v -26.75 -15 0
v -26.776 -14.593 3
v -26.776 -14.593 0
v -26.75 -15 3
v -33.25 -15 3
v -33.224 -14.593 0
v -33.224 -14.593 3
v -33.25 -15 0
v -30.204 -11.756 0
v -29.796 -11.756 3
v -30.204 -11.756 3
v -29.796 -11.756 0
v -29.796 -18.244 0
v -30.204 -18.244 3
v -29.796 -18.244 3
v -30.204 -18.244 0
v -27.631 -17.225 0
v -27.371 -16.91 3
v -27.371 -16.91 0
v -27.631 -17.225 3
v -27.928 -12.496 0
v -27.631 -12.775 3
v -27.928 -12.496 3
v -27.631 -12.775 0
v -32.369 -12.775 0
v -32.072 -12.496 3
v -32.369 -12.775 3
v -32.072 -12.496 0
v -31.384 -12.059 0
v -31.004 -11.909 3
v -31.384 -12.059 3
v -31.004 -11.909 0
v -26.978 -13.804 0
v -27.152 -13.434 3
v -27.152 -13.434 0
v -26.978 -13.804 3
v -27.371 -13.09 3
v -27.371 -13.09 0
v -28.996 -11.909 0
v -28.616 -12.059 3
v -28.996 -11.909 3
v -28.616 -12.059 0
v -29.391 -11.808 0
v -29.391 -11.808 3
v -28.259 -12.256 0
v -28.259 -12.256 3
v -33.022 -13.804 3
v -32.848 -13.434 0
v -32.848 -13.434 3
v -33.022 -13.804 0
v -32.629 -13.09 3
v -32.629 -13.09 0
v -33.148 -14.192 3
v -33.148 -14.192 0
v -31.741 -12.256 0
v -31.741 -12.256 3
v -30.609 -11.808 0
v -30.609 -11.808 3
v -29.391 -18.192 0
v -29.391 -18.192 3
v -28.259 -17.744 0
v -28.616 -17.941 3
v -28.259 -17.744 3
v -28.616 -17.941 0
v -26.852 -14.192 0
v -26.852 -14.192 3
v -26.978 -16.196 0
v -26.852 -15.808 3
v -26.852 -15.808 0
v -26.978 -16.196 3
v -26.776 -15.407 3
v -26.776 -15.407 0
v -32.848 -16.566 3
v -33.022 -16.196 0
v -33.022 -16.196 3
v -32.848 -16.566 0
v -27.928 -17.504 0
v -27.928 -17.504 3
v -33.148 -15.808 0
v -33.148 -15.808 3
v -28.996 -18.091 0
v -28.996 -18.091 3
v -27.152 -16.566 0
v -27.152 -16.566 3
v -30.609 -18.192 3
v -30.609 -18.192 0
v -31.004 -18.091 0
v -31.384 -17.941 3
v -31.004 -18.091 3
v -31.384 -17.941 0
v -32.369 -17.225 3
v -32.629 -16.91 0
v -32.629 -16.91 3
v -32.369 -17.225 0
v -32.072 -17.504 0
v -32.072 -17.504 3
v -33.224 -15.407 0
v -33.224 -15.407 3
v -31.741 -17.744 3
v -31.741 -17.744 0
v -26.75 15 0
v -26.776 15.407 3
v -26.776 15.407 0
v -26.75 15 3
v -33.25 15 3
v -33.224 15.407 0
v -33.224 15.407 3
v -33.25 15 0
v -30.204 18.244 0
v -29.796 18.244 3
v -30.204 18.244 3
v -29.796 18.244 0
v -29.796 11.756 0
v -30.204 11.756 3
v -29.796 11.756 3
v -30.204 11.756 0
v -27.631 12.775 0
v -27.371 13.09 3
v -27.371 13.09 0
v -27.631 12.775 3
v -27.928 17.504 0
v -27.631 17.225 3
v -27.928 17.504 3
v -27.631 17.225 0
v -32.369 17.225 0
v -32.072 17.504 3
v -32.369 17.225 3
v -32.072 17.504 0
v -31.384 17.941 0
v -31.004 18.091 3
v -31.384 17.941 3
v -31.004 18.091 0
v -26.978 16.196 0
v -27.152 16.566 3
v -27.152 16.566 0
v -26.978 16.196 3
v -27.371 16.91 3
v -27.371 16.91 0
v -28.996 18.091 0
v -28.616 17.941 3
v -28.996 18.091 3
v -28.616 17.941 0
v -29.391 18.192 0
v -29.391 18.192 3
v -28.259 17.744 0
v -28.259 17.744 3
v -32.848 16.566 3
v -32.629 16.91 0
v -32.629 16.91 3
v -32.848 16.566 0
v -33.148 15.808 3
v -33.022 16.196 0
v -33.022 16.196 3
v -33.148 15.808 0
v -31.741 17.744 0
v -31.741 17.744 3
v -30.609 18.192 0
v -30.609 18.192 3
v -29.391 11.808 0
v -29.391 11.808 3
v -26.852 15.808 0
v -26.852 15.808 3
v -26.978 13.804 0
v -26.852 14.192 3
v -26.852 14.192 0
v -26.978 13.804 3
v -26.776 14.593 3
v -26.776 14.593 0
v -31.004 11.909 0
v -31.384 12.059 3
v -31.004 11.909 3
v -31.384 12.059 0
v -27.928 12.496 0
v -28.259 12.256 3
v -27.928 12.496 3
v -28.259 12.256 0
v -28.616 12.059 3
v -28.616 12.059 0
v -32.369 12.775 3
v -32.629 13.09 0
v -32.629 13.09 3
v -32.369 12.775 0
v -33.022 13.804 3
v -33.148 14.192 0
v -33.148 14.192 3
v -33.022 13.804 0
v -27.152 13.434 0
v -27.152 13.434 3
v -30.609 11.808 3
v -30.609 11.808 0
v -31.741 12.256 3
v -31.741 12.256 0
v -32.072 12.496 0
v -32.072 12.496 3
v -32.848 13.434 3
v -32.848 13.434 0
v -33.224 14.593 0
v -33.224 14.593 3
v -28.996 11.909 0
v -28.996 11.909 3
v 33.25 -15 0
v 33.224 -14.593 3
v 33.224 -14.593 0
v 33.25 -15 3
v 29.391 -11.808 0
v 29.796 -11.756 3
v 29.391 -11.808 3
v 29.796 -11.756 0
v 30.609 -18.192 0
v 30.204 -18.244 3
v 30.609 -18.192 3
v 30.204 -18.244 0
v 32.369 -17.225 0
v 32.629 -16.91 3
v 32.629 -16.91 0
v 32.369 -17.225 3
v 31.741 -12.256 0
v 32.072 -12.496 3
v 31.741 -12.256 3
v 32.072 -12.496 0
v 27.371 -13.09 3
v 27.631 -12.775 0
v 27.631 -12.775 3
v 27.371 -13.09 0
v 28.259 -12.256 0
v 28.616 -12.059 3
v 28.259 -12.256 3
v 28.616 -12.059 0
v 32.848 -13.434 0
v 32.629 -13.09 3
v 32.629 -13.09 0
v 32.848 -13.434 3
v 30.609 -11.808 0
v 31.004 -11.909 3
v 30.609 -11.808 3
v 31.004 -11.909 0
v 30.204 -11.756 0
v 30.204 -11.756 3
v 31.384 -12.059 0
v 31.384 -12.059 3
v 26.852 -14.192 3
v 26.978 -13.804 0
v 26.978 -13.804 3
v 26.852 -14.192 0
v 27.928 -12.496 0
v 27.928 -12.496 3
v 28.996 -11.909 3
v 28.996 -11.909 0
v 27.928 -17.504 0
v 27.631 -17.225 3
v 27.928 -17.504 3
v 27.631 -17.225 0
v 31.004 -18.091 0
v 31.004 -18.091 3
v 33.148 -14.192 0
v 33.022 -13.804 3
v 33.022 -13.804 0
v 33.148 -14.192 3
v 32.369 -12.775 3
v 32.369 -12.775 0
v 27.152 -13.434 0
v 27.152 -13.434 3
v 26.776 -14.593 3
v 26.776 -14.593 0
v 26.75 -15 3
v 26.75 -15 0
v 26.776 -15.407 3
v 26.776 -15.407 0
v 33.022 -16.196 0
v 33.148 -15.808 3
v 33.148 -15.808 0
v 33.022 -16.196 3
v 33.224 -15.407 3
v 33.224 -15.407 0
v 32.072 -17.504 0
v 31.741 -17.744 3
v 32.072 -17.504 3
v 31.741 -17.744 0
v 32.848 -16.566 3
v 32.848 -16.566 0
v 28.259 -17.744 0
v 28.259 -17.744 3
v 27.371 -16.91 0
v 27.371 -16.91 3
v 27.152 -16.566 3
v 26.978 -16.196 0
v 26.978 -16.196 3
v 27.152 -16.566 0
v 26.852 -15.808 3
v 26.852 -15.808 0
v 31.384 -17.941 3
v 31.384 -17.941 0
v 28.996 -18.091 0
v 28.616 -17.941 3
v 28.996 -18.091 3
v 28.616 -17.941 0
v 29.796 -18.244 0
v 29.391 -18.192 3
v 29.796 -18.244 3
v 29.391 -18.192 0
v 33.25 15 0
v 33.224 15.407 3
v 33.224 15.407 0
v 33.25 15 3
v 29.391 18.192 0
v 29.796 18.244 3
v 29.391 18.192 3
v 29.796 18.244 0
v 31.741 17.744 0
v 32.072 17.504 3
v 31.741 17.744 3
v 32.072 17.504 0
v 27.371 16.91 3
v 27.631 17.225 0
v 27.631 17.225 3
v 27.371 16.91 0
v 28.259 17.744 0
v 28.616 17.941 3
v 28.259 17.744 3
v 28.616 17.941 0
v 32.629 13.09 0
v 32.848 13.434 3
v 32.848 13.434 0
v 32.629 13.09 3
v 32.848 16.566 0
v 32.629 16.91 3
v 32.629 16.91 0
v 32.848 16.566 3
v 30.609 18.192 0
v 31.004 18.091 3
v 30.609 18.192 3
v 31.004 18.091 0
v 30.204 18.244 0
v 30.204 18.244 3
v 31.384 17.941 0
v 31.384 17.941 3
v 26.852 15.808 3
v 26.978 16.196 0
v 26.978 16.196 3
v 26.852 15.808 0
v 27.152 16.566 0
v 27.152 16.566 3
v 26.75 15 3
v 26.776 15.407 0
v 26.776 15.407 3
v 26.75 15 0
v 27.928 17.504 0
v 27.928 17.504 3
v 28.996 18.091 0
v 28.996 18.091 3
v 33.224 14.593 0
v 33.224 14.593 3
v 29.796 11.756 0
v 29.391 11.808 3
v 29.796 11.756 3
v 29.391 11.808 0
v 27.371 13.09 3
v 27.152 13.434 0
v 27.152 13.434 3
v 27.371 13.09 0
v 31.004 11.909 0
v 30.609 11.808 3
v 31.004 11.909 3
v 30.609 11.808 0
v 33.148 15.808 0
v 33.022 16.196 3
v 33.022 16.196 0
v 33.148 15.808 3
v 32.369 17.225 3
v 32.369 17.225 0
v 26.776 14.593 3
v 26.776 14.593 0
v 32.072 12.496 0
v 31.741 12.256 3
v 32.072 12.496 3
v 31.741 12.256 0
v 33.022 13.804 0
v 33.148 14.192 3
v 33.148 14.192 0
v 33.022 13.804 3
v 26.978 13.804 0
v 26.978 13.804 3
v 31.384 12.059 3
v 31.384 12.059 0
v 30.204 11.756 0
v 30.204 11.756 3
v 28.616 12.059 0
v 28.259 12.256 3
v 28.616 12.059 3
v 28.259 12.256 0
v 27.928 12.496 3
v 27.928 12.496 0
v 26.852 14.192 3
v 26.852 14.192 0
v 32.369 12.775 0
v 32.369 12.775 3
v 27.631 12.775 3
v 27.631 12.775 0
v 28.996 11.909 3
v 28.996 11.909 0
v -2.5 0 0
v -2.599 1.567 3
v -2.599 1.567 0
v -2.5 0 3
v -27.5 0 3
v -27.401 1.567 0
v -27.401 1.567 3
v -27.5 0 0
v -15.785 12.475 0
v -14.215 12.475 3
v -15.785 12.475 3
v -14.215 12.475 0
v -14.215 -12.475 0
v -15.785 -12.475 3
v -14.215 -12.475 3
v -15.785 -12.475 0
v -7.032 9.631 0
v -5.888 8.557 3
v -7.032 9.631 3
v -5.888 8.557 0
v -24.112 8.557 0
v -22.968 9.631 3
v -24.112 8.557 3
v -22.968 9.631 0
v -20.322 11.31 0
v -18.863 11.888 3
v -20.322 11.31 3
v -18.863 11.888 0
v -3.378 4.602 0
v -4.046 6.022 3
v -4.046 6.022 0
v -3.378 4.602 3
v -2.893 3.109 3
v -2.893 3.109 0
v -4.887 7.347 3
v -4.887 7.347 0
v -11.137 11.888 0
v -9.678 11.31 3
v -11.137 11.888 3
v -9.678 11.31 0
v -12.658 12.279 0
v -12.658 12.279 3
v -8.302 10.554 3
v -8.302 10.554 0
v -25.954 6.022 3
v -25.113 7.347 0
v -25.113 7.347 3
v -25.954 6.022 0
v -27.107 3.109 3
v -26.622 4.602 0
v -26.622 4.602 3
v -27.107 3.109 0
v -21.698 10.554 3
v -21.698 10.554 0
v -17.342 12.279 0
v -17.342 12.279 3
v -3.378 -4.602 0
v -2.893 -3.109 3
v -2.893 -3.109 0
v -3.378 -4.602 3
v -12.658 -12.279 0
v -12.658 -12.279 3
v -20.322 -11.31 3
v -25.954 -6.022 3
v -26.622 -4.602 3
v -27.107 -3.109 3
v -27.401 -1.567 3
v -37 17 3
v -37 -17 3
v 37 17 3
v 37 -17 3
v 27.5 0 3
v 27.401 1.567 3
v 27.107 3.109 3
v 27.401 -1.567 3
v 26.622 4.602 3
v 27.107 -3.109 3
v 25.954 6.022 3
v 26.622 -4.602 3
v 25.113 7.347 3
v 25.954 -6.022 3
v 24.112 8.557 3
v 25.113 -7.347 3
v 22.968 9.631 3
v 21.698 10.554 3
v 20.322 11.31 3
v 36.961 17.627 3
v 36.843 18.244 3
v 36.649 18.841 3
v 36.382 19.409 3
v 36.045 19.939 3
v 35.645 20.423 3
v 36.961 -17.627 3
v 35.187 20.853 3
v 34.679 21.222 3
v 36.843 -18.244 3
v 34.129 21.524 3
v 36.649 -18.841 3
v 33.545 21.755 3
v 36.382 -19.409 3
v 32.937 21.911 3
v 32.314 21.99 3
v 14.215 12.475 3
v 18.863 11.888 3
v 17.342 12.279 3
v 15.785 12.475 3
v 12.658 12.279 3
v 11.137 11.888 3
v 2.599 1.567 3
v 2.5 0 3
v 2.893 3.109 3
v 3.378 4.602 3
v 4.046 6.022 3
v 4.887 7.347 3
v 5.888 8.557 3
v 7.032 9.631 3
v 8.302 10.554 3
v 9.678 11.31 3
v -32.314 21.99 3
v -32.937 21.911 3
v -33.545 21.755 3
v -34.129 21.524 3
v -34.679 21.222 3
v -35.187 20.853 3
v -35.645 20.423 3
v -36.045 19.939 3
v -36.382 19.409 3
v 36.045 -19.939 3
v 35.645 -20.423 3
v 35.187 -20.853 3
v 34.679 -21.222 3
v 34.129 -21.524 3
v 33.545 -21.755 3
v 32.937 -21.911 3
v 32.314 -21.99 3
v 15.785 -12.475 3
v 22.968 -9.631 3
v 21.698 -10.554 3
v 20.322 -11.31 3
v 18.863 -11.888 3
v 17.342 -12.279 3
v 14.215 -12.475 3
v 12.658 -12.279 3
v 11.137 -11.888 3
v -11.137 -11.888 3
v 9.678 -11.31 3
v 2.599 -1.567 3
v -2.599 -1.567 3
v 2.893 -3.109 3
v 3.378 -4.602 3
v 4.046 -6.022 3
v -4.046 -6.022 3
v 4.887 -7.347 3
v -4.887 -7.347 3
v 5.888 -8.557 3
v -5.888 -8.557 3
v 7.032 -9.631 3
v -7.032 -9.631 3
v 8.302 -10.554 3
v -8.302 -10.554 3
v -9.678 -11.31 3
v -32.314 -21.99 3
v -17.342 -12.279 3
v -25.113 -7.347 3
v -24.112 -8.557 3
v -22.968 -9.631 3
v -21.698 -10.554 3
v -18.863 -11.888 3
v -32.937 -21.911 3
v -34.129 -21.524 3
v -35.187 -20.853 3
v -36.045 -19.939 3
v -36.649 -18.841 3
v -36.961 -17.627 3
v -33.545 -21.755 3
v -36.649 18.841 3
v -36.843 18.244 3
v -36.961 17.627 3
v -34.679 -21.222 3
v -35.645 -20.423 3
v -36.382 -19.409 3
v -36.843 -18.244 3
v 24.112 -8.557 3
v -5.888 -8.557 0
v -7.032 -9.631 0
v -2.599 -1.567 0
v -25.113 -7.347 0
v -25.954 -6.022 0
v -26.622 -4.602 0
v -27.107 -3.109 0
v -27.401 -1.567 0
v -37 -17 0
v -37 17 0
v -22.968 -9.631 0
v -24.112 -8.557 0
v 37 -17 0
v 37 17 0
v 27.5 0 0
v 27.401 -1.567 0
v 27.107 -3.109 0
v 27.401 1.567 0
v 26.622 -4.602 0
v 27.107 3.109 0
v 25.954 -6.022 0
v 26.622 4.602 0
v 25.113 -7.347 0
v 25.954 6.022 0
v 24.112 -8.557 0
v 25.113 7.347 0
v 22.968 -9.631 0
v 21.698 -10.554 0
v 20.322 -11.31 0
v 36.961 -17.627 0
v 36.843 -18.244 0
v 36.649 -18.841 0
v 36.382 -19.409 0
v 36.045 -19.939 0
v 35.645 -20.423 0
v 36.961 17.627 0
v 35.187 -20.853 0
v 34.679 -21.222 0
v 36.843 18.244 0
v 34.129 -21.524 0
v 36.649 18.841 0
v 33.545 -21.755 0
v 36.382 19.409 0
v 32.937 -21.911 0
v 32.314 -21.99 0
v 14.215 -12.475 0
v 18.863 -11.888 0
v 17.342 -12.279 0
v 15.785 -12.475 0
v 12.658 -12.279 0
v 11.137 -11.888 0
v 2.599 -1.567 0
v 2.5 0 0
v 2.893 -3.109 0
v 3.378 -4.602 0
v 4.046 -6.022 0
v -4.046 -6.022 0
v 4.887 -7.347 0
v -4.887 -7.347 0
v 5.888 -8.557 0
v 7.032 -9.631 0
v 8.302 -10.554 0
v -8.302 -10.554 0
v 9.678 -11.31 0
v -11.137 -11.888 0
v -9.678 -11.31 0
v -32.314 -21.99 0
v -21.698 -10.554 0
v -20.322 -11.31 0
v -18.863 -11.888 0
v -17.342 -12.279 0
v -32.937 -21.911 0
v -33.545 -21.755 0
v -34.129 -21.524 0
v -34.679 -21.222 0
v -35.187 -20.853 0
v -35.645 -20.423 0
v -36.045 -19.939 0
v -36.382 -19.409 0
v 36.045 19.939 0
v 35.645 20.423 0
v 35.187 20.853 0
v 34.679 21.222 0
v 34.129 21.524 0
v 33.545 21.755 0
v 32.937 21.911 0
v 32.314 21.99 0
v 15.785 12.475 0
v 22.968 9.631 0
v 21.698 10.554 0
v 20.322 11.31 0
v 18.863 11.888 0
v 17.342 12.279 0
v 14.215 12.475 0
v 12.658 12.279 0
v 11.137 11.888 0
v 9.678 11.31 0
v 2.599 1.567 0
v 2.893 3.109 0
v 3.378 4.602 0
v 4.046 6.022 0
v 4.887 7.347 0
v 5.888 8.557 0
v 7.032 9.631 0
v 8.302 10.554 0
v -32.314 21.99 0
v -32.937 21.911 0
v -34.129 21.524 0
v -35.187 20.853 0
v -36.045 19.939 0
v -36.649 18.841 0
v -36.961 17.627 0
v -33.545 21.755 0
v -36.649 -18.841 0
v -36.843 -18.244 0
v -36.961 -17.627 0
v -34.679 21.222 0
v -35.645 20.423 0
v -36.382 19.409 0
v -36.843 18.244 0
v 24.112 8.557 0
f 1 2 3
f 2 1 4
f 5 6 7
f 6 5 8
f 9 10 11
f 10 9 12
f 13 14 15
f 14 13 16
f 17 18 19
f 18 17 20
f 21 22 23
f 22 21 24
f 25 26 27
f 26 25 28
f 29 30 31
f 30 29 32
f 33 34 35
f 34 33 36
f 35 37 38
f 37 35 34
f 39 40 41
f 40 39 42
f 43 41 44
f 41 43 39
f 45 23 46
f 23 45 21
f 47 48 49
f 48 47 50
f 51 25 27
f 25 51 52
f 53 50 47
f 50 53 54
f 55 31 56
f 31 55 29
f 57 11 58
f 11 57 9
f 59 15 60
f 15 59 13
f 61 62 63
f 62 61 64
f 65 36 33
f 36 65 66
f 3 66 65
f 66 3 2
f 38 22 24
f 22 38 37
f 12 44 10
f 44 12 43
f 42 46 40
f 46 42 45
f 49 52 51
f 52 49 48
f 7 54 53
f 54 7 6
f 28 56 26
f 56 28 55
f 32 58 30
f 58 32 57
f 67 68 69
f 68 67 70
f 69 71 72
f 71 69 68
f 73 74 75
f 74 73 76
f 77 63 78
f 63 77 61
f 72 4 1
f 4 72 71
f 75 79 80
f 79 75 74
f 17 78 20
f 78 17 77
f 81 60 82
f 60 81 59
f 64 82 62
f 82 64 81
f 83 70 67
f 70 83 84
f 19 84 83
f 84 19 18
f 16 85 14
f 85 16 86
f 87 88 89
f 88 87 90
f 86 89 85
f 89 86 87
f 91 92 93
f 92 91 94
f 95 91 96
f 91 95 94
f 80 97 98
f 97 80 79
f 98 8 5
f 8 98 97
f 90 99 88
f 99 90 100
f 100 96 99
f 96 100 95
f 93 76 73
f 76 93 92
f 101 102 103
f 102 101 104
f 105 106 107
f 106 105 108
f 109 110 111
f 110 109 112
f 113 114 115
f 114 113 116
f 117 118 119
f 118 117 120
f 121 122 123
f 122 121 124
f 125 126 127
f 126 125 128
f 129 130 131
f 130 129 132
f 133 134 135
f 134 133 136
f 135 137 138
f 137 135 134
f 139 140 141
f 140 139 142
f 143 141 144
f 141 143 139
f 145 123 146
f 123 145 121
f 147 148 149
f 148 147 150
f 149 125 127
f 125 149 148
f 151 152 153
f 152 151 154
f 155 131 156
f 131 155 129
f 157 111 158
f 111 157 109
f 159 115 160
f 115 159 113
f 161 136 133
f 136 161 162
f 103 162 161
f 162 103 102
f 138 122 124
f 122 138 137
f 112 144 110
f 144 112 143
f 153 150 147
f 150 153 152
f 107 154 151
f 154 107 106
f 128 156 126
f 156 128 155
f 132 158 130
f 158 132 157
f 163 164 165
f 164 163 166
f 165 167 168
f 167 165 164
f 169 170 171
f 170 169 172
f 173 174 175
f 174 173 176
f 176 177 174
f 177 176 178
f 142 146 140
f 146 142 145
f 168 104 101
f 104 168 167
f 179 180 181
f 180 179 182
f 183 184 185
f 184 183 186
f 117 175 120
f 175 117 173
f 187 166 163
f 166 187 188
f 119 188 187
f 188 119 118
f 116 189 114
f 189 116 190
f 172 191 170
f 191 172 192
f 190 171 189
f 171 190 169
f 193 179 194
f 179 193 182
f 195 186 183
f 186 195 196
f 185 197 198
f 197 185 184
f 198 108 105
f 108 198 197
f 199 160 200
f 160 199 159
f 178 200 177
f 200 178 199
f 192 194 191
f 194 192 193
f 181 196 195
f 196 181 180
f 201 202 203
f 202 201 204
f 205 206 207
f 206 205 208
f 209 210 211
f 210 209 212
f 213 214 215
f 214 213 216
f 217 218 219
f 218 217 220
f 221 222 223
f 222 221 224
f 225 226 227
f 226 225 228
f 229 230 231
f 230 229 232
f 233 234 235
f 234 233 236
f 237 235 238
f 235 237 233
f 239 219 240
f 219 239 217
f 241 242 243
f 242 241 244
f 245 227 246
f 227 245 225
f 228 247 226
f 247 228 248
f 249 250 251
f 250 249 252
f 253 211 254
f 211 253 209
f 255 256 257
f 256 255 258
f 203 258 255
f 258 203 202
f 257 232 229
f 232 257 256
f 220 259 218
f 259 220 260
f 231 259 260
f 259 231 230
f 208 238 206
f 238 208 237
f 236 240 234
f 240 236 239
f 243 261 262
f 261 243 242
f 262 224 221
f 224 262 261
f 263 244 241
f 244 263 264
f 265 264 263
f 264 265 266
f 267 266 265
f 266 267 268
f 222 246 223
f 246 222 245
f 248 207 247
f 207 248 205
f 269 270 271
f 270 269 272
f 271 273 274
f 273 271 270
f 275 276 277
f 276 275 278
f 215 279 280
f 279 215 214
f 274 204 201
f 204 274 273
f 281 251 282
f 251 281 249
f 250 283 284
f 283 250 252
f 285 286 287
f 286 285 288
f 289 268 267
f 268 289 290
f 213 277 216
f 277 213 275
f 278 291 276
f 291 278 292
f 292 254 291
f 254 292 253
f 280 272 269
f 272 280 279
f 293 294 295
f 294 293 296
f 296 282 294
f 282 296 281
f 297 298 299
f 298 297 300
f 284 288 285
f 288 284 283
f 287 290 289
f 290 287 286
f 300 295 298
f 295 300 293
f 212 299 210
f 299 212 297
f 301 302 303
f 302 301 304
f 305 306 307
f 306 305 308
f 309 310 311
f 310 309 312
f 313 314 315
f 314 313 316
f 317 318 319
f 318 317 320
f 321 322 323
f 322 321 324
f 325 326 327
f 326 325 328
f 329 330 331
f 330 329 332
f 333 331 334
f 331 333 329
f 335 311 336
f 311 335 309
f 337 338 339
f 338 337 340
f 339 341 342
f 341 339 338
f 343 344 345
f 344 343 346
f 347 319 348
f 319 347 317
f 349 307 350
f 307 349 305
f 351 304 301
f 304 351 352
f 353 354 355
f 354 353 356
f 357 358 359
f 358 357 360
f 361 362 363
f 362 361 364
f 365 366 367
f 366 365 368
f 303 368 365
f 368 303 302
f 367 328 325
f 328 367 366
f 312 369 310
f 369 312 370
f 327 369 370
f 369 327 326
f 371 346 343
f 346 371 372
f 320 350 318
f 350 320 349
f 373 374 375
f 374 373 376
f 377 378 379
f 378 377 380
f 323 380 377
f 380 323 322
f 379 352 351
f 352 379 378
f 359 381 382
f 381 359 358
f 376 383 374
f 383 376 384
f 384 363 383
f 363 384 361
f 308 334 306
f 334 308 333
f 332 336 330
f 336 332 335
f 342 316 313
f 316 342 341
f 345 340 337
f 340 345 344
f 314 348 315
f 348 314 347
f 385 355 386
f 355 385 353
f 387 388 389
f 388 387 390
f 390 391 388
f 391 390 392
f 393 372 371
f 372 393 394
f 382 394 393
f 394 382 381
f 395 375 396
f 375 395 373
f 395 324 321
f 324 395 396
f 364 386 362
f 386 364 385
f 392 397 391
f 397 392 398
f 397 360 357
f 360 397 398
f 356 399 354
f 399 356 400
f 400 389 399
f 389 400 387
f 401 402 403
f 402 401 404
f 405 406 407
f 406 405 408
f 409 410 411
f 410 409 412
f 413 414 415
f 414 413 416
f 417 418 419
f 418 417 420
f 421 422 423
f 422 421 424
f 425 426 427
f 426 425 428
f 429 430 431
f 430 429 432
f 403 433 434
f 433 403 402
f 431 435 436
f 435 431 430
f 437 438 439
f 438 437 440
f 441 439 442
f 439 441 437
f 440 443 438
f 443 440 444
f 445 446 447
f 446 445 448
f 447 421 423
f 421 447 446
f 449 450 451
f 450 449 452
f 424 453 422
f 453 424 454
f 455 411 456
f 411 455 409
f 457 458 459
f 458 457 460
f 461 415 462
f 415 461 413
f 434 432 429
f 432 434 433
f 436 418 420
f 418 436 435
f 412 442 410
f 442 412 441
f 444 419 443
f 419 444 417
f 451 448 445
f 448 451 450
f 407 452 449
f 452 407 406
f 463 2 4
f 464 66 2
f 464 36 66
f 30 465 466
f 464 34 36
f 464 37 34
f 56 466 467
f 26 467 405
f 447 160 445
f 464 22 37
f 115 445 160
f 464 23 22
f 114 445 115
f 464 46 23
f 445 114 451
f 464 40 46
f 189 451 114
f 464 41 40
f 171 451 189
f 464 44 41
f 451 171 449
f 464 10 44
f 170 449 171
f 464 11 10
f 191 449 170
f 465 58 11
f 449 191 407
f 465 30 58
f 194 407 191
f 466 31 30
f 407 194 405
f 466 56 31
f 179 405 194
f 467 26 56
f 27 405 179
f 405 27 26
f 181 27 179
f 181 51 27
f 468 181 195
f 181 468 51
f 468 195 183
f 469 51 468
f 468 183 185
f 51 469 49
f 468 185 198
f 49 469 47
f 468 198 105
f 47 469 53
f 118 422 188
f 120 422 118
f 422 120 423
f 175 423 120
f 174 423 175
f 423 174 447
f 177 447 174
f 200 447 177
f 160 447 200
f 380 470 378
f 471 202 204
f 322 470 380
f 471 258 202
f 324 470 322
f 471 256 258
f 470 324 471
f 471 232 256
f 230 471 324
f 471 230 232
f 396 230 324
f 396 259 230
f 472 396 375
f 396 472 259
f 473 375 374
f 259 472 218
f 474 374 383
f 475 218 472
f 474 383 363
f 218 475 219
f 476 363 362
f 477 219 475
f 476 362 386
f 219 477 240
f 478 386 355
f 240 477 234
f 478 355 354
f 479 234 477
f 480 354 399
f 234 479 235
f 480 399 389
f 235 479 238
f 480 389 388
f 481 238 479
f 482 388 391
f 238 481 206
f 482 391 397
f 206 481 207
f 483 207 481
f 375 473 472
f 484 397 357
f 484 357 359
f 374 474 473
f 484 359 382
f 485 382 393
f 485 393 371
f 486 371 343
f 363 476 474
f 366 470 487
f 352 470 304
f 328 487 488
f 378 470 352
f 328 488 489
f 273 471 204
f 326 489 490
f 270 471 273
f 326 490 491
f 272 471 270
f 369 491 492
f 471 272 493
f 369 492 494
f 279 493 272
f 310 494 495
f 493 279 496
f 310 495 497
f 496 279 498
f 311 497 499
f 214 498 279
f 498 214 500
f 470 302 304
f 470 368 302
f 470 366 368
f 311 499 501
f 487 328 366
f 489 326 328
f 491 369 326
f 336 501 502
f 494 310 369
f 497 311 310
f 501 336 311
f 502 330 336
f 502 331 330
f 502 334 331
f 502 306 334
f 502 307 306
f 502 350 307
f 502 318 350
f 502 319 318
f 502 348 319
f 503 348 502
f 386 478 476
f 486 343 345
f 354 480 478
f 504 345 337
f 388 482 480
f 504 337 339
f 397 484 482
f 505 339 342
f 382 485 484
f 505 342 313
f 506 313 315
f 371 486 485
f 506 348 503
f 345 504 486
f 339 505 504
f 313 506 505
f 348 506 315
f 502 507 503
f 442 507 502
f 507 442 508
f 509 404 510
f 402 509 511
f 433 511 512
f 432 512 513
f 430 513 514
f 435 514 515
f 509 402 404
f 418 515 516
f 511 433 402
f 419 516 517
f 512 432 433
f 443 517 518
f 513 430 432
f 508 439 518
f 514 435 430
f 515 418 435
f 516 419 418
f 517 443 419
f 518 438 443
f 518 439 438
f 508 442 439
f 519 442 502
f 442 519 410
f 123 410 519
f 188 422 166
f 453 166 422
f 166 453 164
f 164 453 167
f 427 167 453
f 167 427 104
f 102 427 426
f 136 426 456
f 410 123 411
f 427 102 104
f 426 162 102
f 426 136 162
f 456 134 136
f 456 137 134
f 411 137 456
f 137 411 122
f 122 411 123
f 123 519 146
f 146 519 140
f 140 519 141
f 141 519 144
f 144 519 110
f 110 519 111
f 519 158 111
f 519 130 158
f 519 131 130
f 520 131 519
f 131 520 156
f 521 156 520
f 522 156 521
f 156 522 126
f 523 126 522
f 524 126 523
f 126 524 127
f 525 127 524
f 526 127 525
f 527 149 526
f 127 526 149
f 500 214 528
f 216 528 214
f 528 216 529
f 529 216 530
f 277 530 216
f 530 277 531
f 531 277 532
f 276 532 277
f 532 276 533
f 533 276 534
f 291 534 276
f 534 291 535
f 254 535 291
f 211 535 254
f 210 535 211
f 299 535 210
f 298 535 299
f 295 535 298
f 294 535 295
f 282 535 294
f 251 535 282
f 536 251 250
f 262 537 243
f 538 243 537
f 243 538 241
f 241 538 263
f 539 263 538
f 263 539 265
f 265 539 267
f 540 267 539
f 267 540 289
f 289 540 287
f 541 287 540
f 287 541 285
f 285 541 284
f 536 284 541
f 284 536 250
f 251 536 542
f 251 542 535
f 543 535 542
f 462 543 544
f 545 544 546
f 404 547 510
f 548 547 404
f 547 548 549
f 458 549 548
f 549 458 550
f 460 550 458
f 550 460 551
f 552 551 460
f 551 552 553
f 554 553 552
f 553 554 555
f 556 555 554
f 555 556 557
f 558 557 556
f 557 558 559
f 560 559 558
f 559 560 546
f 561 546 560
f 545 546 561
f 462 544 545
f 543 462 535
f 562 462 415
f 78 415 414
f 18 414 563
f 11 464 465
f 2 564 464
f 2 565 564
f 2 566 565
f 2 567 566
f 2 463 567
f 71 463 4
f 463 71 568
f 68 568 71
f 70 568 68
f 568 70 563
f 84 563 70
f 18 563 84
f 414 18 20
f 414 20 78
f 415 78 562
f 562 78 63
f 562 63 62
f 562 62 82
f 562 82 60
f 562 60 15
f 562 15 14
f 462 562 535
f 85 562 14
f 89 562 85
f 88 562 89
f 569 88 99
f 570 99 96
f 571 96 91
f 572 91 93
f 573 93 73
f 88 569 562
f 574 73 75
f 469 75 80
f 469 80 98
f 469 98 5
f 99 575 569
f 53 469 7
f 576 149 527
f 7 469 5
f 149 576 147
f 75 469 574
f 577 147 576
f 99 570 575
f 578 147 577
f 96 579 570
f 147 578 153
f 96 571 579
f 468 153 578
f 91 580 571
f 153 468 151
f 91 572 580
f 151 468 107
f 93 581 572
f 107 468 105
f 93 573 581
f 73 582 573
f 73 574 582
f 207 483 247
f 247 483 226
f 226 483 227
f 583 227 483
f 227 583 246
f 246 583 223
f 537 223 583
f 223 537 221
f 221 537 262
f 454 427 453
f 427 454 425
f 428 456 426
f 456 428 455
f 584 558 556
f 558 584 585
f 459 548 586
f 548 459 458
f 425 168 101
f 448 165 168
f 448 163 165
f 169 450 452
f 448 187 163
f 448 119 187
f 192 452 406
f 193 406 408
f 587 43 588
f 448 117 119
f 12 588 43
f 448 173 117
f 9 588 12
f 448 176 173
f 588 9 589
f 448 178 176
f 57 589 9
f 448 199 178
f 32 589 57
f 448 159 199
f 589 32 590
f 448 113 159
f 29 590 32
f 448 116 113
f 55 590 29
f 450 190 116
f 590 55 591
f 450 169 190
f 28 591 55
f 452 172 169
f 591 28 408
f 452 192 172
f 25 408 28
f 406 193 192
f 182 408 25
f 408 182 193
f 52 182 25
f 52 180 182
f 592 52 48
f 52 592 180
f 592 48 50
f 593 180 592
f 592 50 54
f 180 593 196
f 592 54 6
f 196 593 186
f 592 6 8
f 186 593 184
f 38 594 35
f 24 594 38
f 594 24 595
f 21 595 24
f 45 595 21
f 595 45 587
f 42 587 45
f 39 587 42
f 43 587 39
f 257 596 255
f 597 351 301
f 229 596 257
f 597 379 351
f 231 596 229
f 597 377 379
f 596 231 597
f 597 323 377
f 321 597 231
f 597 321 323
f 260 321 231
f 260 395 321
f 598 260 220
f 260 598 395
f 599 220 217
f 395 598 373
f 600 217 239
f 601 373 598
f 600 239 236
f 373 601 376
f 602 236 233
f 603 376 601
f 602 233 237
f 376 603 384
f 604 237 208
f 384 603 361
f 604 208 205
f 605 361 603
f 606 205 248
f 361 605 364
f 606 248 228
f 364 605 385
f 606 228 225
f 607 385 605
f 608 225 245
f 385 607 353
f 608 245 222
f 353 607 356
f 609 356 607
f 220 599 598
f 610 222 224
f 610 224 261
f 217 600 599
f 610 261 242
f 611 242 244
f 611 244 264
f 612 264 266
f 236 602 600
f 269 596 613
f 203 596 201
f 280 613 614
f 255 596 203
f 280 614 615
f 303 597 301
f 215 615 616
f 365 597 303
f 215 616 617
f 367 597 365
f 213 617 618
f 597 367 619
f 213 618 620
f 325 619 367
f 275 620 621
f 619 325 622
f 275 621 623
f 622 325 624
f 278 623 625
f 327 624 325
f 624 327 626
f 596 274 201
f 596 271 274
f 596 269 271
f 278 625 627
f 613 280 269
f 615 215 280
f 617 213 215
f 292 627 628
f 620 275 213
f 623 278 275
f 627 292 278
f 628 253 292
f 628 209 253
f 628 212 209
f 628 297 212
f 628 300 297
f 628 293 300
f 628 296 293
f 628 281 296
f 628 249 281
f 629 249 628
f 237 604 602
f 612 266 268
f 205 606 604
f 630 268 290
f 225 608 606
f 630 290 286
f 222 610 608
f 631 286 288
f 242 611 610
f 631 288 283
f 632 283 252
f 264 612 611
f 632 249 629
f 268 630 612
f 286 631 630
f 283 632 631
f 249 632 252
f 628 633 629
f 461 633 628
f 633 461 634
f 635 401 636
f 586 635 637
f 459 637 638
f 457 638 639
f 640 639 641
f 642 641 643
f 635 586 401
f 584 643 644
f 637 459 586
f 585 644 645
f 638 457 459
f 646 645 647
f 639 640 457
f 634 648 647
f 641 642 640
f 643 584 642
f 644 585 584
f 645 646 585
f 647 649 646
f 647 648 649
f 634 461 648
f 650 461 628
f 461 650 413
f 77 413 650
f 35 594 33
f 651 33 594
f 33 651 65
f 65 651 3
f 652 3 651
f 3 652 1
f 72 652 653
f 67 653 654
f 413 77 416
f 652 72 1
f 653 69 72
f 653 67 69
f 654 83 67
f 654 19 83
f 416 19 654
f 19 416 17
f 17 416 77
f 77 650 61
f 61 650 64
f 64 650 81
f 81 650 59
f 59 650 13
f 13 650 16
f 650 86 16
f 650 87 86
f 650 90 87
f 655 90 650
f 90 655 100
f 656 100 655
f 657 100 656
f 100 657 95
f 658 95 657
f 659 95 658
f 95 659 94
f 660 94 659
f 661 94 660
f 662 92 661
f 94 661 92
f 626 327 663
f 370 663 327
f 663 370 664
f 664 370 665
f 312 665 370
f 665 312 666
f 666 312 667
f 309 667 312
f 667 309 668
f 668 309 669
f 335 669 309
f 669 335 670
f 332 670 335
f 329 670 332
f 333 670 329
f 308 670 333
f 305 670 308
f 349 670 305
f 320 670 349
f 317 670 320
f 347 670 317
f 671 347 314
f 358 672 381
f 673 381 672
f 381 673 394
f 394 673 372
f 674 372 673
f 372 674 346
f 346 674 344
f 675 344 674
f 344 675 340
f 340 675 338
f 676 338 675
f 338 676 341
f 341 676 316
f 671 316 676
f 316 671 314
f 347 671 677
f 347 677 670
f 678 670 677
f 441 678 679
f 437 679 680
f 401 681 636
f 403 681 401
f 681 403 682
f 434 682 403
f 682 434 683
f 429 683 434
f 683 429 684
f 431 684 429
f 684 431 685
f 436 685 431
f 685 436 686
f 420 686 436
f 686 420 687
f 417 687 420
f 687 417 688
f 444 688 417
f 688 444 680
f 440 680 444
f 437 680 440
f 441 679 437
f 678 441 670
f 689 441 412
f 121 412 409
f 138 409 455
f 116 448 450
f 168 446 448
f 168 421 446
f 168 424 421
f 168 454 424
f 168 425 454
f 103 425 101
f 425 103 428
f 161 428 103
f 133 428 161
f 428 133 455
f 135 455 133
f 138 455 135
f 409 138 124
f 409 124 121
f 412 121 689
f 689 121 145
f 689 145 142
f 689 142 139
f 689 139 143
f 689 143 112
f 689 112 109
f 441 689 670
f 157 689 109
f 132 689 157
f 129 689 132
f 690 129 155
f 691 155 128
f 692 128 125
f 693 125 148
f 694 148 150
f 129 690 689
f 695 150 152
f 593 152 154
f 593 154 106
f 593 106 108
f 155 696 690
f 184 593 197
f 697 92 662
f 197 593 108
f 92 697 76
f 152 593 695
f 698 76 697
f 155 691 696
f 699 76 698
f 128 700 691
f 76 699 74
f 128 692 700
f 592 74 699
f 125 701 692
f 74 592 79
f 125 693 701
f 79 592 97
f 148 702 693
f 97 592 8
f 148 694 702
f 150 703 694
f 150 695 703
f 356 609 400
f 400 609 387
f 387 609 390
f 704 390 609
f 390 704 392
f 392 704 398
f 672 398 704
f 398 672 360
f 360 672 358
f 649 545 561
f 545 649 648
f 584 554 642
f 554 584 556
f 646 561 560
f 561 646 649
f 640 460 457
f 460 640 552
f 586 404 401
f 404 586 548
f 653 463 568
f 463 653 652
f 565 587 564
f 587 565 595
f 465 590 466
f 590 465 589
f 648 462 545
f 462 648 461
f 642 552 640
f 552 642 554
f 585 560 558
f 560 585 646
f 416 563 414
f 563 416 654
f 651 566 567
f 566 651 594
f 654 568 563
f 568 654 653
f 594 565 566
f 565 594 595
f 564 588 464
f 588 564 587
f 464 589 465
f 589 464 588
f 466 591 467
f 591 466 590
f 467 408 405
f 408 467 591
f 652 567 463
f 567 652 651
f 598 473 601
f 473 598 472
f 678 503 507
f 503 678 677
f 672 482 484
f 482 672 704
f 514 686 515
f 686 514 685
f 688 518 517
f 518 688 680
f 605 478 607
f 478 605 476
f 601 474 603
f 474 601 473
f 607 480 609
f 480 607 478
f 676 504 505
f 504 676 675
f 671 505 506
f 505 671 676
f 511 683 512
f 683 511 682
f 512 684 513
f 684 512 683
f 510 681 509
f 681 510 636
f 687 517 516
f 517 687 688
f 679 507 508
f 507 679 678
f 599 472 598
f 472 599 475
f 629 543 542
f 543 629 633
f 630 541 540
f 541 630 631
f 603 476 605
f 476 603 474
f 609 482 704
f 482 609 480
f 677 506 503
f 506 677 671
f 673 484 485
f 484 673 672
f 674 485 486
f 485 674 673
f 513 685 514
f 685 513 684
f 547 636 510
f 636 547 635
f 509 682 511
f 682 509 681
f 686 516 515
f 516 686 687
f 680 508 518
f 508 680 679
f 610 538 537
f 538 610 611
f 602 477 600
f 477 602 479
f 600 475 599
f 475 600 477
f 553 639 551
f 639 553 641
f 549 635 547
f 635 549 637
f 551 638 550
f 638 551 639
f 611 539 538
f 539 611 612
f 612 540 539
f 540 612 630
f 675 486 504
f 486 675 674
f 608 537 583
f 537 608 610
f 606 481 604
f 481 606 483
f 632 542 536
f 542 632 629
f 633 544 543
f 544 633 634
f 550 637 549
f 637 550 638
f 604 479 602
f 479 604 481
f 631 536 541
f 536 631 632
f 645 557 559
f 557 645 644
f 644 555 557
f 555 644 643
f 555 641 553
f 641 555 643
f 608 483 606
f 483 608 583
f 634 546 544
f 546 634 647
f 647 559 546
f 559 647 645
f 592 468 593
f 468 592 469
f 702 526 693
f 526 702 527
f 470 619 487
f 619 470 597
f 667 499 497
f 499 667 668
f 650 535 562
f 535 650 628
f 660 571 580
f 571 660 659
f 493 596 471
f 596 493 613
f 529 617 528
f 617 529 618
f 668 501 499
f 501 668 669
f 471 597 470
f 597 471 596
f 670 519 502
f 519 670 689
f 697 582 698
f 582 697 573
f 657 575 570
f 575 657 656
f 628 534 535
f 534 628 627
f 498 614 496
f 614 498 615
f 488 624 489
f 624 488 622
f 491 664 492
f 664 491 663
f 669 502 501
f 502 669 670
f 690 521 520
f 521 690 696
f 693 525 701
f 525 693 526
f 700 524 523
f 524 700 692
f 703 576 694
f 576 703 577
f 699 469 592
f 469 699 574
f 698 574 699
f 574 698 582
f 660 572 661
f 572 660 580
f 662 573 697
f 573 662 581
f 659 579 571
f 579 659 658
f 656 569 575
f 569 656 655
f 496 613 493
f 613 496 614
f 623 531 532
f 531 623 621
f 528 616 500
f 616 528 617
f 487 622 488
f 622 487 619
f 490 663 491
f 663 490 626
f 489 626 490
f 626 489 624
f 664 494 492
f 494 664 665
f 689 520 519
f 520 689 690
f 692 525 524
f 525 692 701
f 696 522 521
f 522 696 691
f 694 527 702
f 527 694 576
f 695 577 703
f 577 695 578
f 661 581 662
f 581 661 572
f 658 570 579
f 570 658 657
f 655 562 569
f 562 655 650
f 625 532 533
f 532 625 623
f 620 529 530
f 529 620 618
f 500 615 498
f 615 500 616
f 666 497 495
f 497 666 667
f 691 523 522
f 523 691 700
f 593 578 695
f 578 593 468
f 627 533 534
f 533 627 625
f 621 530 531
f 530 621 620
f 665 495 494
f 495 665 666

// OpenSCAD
$fn = 50;


difference() {
	union() {
		hull() {
			translate(v = [-32.0000000000, 17.0000000000, 0]) {
				cylinder(h = 3, r = 5);
			}
			translate(v = [32.0000000000, 17.0000000000, 0]) {
				cylinder(h = 3, r = 5);
			}
			translate(v = [-32.0000000000, -17.0000000000, 0]) {
				cylinder(h = 3, r = 5);
			}
			translate(v = [32.0000000000, -17.0000000000, 0]) {
				cylinder(h = 3, r = 5);
			}
		}
	}
	union() {
		#translate(v = [-30.0000000000, -15.0000000000, -100.0000000000]) {
			cylinder(h = 200, r = 3.2500000000);
		}
		#translate(v = [-30.0000000000, 15.0000000000, -100.0000000000]) {
			cylinder(h = 200, r = 3.2500000000);
		}
		#translate(v = [30.0000000000, -15.0000000000, -100.0000000000]) {
			cylinder(h = 200, r = 3.2500000000);
		}
		#translate(v = [30.0000000000, 15.0000000000, -100.0000000000]) {
			cylinder(h = 200, r = 3.2500000000);
		}
		#translate(v = [-15.0000000000, 0, 0]) {
			cylinder(h = 3, r = 12.5000000000);
		}
		#translate(v = [15.0000000000, 0, 0]) {
			cylinder(h = 3, r = 12.5000000000);
		}
	}
}
